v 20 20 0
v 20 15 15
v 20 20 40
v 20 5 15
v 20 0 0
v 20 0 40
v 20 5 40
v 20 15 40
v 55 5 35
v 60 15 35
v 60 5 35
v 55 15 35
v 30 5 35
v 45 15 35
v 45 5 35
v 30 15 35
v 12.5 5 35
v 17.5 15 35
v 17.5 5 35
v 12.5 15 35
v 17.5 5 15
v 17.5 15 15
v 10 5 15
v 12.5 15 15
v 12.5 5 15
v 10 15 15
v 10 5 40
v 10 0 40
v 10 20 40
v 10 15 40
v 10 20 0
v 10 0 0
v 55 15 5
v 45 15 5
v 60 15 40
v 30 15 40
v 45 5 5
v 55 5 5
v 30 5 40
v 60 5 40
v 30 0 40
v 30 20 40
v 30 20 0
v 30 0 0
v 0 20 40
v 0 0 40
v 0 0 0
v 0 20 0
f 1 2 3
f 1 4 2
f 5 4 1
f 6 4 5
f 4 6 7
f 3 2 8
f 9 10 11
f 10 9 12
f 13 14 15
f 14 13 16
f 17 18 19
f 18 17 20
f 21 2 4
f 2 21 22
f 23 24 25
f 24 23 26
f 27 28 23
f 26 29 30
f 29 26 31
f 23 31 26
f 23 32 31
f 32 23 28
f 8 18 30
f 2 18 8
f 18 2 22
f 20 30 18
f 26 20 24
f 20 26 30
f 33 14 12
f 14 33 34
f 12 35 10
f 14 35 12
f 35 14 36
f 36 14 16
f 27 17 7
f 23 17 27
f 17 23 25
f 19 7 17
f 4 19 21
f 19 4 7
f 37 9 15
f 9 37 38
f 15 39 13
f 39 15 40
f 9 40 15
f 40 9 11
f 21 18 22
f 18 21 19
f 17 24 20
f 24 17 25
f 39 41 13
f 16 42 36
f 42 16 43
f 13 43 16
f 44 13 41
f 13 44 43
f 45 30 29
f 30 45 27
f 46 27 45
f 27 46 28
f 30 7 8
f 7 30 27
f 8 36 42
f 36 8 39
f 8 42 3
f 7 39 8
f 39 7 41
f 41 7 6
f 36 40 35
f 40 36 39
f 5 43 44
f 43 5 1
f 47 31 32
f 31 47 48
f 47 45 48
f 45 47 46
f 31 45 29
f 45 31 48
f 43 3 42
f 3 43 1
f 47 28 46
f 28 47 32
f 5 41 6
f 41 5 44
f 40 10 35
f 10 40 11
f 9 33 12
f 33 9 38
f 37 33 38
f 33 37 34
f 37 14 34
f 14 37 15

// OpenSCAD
// Base block
module base_block() {
    difference() {
        cube([30, 20, 40], center = false); // Main block
        translate([10, 0, 0]) {
            cube([10, 20, 40], center = false); // Slot
        }
    }
}

// Horizontal arm
module horizontal_arm() {
    cube([50, 10, 5], center = false); // Main arm
}

// Vertical arm
module vertical_arm() {
    cube([10, 10, 30], center = false); // Main arm
}

// Connector block
module connector_block() {
    difference() {
        cube([10, 10, 20], center = false); // Main block
        translate([2.5, 0, 0]) {
            cube([5, 10, 20], center = false); // Slot
        }
    }
}

// Assembly
module assembly() {
    // Layer 1: Horizontal arm
    translate([10, 5, 35]) {
        horizontal_arm();
    }

    // Layer 2: Vertical arm
    translate([45, 5, 5]) {
        vertical_arm();
    }

    // Layer 3: Connector block
    translate([10, 5, 15]) {
        connector_block();
    }

    // Layer 4: Base block
    base_block();
}

// Render the assembly
assembly();
